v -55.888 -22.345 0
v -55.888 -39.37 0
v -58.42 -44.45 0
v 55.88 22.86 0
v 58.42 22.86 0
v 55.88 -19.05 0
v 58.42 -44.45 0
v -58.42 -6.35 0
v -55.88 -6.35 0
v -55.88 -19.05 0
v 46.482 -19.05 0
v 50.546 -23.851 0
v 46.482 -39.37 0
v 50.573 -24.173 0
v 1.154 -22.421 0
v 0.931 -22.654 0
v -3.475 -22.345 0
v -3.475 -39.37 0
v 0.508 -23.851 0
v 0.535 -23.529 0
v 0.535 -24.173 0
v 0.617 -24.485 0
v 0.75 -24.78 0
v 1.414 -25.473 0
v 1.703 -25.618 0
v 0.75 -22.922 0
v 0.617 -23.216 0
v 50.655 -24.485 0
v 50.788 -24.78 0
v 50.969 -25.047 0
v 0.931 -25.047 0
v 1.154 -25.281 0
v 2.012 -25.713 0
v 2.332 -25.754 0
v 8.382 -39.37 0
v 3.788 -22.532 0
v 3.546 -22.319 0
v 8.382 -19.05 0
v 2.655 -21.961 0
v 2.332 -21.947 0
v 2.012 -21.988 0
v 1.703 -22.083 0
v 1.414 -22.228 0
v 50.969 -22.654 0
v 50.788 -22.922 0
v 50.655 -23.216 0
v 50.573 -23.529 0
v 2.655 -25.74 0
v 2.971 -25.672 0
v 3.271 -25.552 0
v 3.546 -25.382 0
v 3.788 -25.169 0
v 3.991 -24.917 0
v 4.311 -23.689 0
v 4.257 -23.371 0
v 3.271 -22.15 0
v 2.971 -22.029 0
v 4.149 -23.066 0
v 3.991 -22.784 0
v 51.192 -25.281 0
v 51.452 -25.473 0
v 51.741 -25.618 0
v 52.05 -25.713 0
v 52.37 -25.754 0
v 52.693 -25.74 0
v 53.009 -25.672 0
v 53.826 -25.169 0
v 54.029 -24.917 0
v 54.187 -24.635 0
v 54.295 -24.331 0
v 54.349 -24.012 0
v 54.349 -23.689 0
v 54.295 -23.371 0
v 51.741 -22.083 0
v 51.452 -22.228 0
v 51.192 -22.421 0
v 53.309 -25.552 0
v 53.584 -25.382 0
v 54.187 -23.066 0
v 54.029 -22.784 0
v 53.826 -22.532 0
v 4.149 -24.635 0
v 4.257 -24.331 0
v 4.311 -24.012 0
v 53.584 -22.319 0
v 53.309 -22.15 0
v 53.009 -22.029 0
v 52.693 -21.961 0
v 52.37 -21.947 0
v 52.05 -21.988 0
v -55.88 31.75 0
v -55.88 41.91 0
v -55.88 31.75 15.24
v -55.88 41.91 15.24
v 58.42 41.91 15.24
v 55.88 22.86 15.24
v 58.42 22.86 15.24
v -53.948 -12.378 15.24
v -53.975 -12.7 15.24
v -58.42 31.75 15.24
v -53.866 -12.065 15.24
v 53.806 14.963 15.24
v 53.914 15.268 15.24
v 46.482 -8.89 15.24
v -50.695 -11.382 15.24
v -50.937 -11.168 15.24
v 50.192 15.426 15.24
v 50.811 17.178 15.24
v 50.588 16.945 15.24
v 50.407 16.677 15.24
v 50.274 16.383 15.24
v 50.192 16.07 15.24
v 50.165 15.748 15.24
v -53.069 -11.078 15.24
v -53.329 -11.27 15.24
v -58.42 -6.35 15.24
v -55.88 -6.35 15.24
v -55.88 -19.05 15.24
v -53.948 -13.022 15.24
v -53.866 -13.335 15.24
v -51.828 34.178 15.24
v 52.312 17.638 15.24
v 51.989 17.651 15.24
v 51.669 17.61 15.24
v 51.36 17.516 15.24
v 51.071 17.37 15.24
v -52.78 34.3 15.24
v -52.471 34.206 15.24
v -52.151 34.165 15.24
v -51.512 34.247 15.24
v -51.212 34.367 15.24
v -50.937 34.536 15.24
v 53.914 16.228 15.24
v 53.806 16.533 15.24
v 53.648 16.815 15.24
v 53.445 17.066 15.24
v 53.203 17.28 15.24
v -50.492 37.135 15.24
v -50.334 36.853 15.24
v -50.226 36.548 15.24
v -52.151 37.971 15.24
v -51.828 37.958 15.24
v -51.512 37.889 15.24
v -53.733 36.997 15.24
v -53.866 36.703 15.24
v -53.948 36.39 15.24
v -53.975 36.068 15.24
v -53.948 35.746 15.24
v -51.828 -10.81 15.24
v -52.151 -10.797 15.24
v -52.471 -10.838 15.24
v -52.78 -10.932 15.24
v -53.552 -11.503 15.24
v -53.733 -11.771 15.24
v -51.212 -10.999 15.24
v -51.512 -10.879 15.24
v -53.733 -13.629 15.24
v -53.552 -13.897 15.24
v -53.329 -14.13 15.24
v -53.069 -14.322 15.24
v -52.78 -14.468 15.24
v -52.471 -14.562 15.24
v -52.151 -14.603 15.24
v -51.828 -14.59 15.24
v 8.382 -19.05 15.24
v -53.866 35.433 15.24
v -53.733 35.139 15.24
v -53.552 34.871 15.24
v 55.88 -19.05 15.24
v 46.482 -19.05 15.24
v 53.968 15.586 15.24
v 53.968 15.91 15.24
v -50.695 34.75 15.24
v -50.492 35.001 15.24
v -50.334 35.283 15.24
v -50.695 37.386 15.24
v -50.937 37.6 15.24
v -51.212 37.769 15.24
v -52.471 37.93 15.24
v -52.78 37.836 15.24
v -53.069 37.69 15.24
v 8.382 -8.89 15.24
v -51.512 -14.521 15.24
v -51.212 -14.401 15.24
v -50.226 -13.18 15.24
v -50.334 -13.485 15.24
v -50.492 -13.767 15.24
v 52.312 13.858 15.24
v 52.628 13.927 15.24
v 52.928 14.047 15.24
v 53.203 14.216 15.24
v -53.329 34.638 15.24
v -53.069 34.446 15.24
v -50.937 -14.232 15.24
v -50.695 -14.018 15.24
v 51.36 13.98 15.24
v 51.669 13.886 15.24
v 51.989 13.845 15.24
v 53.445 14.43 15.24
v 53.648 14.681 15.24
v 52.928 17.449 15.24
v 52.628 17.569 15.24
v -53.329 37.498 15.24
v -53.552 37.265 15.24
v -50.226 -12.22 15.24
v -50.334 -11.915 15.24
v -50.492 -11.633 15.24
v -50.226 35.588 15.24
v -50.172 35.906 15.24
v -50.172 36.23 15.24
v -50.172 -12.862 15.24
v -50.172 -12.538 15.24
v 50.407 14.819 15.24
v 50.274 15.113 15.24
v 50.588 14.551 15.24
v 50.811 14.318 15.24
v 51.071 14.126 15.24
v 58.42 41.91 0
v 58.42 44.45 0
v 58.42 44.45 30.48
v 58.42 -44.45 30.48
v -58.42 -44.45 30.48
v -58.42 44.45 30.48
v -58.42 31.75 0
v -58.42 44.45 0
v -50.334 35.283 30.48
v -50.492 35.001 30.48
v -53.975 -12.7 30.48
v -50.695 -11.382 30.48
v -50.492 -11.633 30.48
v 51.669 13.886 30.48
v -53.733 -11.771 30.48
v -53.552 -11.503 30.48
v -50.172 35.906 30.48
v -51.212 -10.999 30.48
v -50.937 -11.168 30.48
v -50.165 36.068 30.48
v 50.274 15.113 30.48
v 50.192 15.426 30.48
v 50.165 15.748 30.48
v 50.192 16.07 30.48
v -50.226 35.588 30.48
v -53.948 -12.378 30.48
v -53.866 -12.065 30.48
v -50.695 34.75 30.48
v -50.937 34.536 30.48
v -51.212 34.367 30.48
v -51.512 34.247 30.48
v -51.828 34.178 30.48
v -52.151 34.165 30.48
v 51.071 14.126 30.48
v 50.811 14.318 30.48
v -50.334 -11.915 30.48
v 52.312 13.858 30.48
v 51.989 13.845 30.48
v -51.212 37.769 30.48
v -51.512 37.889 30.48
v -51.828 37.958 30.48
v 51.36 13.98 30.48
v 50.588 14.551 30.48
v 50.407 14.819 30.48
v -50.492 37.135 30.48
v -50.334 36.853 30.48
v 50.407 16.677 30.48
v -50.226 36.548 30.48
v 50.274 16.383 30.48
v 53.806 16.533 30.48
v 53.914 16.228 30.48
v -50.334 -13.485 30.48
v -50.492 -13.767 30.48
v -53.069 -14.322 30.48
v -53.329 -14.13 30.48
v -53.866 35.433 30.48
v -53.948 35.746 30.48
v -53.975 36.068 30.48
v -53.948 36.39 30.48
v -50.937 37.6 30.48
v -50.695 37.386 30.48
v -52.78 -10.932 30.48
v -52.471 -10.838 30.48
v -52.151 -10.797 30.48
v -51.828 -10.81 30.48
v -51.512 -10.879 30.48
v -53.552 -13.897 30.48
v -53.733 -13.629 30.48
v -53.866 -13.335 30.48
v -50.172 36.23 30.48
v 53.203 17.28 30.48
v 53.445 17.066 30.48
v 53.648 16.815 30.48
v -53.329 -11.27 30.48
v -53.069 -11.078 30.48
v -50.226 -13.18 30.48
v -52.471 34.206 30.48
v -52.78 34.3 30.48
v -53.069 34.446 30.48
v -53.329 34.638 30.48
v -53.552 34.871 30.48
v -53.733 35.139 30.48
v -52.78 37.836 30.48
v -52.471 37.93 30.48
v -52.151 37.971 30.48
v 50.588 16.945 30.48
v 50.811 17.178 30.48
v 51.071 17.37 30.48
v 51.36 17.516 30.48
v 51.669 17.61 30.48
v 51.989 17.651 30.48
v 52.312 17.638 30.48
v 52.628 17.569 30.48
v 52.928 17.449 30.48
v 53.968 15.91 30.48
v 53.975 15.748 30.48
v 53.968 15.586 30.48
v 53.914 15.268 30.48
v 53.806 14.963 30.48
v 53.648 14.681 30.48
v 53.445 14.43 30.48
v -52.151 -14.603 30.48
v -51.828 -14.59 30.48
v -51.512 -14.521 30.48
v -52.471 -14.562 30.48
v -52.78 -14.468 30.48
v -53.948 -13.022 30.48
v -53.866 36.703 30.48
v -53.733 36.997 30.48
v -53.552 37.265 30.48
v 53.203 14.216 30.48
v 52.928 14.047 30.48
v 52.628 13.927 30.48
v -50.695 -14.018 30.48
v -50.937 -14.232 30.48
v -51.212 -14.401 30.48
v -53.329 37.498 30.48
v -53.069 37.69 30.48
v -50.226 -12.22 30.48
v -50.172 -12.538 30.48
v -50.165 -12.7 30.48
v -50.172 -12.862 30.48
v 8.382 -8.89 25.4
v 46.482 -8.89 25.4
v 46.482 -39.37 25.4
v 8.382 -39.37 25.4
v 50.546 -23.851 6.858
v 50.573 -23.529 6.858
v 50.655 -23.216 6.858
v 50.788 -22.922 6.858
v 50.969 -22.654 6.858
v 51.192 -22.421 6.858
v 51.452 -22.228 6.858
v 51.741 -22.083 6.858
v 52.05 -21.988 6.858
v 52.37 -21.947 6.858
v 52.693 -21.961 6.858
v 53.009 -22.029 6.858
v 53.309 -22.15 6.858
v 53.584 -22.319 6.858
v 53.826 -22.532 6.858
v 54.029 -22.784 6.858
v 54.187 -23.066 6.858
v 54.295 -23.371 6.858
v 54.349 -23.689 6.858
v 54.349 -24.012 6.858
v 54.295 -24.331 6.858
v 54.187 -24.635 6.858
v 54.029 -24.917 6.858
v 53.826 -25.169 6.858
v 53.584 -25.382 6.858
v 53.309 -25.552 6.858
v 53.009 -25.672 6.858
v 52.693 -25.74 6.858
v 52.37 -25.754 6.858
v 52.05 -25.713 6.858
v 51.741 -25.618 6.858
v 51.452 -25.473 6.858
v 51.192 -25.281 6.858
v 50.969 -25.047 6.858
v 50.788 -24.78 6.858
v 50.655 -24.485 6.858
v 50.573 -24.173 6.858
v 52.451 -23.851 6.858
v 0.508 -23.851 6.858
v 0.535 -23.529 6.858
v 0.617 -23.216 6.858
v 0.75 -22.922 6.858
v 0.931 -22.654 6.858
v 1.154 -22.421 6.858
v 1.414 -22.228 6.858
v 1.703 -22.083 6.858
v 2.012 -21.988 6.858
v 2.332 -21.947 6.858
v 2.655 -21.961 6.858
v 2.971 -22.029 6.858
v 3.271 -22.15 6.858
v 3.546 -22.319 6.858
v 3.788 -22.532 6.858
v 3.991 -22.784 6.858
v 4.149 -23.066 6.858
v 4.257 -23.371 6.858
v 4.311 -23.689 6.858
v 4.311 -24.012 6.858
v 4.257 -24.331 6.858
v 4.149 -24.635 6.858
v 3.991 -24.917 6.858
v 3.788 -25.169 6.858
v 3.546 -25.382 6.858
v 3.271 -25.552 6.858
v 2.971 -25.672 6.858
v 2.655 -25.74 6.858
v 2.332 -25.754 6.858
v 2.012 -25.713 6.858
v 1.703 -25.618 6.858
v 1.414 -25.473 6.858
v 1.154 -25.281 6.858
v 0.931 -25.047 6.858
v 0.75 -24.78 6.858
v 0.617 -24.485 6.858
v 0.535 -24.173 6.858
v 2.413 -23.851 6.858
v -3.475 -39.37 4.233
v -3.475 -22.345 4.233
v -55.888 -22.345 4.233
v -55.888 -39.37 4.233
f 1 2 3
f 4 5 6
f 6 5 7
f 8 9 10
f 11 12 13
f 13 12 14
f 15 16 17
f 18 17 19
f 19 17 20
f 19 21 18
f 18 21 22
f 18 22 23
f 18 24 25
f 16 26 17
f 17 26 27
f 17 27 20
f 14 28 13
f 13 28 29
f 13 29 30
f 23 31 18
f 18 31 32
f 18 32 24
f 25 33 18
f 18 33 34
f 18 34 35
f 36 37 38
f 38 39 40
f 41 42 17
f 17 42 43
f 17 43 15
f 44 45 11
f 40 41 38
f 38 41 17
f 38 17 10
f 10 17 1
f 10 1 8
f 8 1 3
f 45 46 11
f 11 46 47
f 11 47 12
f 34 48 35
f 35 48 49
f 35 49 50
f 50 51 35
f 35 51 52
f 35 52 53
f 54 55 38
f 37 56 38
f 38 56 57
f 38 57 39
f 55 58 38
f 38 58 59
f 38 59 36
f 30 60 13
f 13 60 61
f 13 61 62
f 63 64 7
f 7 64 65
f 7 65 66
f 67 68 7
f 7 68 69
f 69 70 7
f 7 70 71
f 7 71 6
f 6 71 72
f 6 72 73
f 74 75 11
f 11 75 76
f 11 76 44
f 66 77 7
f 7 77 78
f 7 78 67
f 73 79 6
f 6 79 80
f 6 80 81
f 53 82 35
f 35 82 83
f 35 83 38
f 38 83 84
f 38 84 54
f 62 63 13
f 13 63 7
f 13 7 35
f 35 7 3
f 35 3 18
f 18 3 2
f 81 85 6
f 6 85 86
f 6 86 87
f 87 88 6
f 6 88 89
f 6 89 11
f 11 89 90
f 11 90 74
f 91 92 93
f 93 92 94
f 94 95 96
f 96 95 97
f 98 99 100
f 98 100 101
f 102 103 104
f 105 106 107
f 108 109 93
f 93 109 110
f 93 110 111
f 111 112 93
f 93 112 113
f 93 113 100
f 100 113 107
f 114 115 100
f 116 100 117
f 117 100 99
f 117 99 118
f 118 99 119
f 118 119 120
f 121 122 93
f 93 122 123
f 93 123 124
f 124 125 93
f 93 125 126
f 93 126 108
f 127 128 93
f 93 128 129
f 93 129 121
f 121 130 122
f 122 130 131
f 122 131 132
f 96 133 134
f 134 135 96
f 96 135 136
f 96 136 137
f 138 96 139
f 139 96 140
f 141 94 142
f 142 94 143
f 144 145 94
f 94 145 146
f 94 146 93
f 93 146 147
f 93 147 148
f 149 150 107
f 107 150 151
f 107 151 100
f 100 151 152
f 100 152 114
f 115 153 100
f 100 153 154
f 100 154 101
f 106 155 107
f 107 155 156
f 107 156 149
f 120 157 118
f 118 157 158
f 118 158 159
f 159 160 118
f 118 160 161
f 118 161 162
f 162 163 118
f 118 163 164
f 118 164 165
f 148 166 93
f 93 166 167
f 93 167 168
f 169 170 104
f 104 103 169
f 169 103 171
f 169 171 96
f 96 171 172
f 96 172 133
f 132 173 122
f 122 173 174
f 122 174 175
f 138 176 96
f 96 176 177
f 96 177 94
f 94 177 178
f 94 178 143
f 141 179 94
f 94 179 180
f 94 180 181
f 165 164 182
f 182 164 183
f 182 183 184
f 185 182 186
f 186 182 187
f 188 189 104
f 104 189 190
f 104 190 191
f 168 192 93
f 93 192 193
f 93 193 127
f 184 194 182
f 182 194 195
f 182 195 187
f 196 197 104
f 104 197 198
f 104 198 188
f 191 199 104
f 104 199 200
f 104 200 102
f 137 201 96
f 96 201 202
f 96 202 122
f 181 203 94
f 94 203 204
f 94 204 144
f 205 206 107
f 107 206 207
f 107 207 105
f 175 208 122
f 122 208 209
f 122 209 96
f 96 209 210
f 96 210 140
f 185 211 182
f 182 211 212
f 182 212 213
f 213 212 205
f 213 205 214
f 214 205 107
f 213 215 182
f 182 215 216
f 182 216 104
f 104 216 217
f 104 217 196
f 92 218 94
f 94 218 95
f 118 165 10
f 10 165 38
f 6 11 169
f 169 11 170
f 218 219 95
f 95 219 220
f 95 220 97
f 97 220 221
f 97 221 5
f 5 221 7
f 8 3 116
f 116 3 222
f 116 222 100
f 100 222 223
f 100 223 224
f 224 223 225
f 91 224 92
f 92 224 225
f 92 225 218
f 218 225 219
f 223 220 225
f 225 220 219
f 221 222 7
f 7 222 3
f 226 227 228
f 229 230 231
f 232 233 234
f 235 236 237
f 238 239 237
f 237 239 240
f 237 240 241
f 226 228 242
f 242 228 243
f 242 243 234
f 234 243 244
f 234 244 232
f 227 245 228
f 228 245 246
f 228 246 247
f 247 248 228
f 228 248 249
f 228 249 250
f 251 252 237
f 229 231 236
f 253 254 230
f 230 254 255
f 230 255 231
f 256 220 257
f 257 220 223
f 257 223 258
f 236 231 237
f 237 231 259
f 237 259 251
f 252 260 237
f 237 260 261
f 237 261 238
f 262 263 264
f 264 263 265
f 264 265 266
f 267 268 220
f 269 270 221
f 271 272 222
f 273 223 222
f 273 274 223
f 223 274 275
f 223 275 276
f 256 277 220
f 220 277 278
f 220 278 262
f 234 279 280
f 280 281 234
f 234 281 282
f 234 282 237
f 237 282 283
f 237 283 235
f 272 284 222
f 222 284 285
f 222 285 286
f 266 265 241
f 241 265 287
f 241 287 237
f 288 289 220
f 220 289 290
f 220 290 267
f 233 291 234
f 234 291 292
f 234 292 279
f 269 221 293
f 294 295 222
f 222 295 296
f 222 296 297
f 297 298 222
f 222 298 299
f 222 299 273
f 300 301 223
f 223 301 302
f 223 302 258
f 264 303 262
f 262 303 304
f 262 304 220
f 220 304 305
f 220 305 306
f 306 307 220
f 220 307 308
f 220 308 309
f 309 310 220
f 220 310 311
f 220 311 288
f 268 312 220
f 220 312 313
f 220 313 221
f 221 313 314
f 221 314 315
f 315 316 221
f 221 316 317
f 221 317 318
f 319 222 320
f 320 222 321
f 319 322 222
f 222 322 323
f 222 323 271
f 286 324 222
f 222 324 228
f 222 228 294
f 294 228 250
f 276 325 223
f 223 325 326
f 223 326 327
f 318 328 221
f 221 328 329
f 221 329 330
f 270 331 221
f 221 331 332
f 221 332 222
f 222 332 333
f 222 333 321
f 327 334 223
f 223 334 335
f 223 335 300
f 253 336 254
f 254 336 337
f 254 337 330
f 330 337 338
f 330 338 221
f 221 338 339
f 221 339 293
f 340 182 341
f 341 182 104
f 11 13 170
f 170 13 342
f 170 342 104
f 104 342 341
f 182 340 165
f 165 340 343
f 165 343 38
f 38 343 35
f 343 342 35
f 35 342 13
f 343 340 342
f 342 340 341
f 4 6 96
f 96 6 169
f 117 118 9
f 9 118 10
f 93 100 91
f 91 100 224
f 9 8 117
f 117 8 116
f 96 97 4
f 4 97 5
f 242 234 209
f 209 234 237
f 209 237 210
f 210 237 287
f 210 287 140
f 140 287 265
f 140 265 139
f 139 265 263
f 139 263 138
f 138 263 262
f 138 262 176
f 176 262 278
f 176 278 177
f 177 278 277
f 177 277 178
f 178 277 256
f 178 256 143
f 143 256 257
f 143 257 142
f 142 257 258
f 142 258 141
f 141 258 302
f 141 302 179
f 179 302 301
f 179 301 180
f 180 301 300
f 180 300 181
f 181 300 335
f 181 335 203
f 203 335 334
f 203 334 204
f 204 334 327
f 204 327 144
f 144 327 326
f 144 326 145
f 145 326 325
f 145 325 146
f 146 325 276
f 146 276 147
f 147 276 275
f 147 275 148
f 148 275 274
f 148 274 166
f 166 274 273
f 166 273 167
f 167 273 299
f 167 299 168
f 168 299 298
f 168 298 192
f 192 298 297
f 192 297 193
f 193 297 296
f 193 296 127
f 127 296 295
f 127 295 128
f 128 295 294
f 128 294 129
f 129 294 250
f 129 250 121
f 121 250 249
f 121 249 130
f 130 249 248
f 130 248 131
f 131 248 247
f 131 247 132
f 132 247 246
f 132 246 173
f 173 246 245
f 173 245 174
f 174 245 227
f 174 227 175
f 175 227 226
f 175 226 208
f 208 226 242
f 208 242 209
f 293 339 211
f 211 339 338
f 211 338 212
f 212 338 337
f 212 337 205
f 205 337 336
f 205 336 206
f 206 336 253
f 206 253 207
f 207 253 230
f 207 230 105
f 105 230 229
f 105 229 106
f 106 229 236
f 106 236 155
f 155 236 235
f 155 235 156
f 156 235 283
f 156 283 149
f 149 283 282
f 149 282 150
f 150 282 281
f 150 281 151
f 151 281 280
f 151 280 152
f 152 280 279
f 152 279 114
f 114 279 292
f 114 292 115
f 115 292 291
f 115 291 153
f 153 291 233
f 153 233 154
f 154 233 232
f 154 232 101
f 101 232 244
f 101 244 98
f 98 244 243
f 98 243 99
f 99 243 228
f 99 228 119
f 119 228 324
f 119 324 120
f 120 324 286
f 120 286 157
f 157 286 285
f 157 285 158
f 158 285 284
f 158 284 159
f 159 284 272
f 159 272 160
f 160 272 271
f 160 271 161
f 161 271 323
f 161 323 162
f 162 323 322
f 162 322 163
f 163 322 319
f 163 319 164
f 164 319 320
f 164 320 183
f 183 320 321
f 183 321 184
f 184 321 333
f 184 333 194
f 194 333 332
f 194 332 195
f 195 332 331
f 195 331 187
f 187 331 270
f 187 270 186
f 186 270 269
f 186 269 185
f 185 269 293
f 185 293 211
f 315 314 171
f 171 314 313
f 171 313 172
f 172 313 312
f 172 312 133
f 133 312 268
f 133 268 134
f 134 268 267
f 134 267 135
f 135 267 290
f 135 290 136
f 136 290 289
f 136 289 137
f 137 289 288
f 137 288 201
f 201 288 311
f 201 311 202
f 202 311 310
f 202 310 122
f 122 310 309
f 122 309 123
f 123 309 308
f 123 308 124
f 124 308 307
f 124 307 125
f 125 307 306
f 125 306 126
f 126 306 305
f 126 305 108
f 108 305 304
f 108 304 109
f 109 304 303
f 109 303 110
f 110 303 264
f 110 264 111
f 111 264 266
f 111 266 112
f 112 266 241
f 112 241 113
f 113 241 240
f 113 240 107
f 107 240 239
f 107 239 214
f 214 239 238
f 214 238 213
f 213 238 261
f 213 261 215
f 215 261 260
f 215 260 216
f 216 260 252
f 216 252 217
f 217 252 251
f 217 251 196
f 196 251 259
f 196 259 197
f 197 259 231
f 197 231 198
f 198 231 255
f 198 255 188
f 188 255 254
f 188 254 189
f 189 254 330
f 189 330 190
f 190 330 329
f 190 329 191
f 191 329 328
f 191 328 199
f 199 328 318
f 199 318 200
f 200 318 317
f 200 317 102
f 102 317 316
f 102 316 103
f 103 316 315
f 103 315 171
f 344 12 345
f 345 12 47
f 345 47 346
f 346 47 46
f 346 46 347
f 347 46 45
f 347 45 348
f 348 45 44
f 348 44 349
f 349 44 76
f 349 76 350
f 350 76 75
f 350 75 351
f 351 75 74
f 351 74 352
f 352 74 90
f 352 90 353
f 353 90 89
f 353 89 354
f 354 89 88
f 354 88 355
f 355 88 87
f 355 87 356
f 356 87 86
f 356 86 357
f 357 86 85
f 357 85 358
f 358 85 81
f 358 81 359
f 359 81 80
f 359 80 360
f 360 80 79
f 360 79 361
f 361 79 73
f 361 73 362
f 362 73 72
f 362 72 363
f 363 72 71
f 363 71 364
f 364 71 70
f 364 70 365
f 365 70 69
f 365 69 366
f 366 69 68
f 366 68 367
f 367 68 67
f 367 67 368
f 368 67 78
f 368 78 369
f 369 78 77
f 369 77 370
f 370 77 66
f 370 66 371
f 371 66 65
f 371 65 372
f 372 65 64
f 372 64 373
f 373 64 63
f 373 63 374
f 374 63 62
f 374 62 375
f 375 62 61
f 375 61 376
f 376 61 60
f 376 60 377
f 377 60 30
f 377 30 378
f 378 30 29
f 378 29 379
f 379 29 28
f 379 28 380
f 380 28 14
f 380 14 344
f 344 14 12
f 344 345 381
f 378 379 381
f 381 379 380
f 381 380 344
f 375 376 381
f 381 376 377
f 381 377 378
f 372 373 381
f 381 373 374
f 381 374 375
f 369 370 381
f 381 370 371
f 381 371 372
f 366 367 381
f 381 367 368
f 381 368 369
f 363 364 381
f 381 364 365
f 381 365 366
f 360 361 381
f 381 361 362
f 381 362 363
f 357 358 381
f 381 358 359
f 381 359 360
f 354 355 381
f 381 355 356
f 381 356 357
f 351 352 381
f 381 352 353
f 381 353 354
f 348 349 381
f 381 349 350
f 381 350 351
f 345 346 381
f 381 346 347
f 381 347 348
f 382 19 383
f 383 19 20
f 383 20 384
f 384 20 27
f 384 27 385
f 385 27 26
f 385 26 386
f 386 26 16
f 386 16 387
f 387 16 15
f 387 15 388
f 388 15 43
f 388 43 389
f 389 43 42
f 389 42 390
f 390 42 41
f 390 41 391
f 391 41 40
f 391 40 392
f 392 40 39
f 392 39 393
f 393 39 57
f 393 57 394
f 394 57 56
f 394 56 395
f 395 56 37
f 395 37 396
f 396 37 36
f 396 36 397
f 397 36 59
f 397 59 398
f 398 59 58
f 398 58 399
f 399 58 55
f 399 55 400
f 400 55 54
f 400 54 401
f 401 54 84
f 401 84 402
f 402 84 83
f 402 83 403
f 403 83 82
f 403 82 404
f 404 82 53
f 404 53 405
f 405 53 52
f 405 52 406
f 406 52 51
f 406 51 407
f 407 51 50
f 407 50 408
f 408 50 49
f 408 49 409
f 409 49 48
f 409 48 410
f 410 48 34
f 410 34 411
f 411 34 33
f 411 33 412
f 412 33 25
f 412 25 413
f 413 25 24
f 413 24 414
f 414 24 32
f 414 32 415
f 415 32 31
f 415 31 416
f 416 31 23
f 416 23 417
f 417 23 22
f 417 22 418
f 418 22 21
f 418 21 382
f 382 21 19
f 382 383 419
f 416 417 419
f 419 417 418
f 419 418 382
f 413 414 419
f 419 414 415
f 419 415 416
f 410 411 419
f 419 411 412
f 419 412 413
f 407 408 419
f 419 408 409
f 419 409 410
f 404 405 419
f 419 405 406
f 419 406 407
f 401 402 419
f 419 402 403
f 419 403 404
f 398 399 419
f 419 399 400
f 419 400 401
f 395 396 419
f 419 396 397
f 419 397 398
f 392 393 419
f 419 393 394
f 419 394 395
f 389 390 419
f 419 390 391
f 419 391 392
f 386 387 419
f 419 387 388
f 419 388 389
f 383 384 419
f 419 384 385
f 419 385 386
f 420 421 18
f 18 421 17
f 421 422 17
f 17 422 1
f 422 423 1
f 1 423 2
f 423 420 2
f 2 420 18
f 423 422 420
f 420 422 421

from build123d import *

# Parameters (mm, degrees)
SKETCH1_W           = 116.84
SKETCH1_H           = 88.9
BOSS_EXTRUDE1_DEPTH = 30.48
SKETCH2_W           = 121.92
SKETCH2_H           = 60.96
CUT_EXTRUDE1_DEPTH  = 15.24
SKETCH4_W           = 38.1
SKETCH4_H           = 30.48
CUT_EXTRUDE2_DEPTH  = 25.4
SKETCH9_W           = 2.54
SKETCH9_H           = 60.96
BOSS_EXTRUDE2_DEPTH = 15.24
SKETCH11_W          = 2.54
SKETCH11_H          = 60.96
BOSS_EXTRUDE3_DEPTH = 15.24
SKETCH13_W          = 6.933470389
SKETCH13_H          = 38.1
CUT_EXTRUDE6_DEPTH  = 15.24
SKETCH14_W          = 5.795170267
SKETCH14_H          = 19.05
CUT_EXTRUDE7_DEPTH  = 15.24
SKETCH15_R          = 1.905
CUT_EXTRUDE8_DEPTH  = 48.26
SKETCH16_R          = 1.905
CUT_EXTRUDE9_DEPTH  = 6.858
SKETCH19_W          = 52.412757742
SKETCH19_H          = 17.024597759
CUT_EXTRUDE10_DEPTH = 4.233333333
SKETCH5_W           = 10.150117587
SKETCH5_H           = 22.048837971
CUT_EXTRUDE3_DEPTH  = 15.24
SKETCH6_W           = 9.22767553
SKETCH6_H           = 28.682463558
CUT_EXTRUDE4_DEPTH  = 15.24
SKETCH7_W           = 7.203031043
SKETCH7_H           = 12.7
CUT_EXTRUDE5_DEPTH  = 15.24


with BuildPart() as part:
    # Sketch1 → Boss-Extrude1 (new body)
    with BuildSketch(Plane.XY):
        Rectangle(SKETCH1_W, SKETCH1_H)
    extrude(amount=BOSS_EXTRUDE1_DEPTH)

    # Sketch2 → Cut-Extrude1 (cut)
    with BuildSketch(Plane.XY):
        with Locations((0, 11.43)):
            Rectangle(SKETCH2_W, SKETCH2_H)
    extrude(amount=CUT_EXTRUDE1_DEPTH, mode=Mode.SUBTRACT)

    # Sketch4 → Cut-Extrude2 (cut)
    with BuildSketch(Plane(origin=(0, 0, 0), x_dir=(-1, 0, 0), z_dir=(0, 0, -1))):
        with Locations((-27.432, -24.13)):
            Rectangle(SKETCH4_W, SKETCH4_H)
    extrude(amount=-CUT_EXTRUDE2_DEPTH, mode=Mode.SUBTRACT)

    # Sketch9 → Boss-Extrude2 (add)
    with BuildSketch(Plane(origin=(0, 0, 15.24), x_dir=(-1, 0, 0), z_dir=(0, 0, -1))):
        with Locations((-57.15, 11.43)):
            Rectangle(SKETCH9_W, SKETCH9_H)
    extrude(amount=BOSS_EXTRUDE2_DEPTH)

    # Sketch11 → Boss-Extrude3 (add)
    with BuildSketch(Plane(origin=(0, 0, 15.24), x_dir=(-1, 0, 0), z_dir=(0, 0, -1))):
        with Locations((57.15, 11.43)):
            Rectangle(SKETCH11_W, SKETCH11_H)
    extrude(amount=BOSS_EXTRUDE3_DEPTH)

    # Sketch13 → Cut-Extrude6 (cut)
    with BuildSketch(Plane(origin=(0, 0, 0), x_dir=(-1, 0, 0), z_dir=(0, 0, -1))):
        with Locations((59.346735194, 12.7)):
            Rectangle(SKETCH13_W, SKETCH13_H)
    extrude(amount=-CUT_EXTRUDE6_DEPTH, mode=Mode.SUBTRACT)

    # Sketch14 → Cut-Extrude7 (cut)
    with BuildSketch(Plane(origin=(0, 0, 0), x_dir=(-1, 0, 0), z_dir=(0, 0, -1))):
        with Locations((-58.777585134, 32.385)):
            Rectangle(SKETCH14_W, SKETCH14_H)
    extrude(amount=-CUT_EXTRUDE7_DEPTH, mode=Mode.SUBTRACT)

    # Sketch15 → Cut-Extrude8 (cut)
    with BuildSketch(Plane(origin=(0, 0, 15.24), x_dir=(-1, 0, 0), z_dir=(0, 0, -1))):
        with Locations((52.07, 36.068)):
            Circle(SKETCH15_R)
        with Locations((52.07, -12.7)):
            Circle(SKETCH15_R)
        with Locations((-52.07, 15.748)):
            Circle(SKETCH15_R)
    extrude(amount=-CUT_EXTRUDE8_DEPTH, mode=Mode.SUBTRACT)

    # Sketch16 → Cut-Extrude9 (cut)
    with BuildSketch(Plane(origin=(0, 0, 0), x_dir=(-1, 0, 0), z_dir=(0, 0, -1))):
        with Locations((-52.451, -23.8506)):
            Circle(SKETCH16_R)
        with Locations((-2.413, -23.8506)):
            Circle(SKETCH16_R)
    extrude(amount=-CUT_EXTRUDE9_DEPTH, mode=Mode.SUBTRACT)

    # Sketch19 → Cut-Extrude10 (cut)
    with BuildSketch(Plane(origin=(0, 0, 0), x_dir=(-1, 0, 0), z_dir=(0, 0, -1))):
        with Locations((29.681257837, -30.857701121)):
            Rectangle(SKETCH19_W, SKETCH19_H)
    extrude(amount=-CUT_EXTRUDE10_DEPTH, mode=Mode.SUBTRACT)

    # Sketch5 → Cut-Extrude3 (cut)
    with BuildSketch(Plane(origin=(0, 0, 0), x_dir=(-1, 0, 0), z_dir=(0, 0, -1))):
        with Locations((66.035058793, 15.645581015)):
            Rectangle(SKETCH5_W, SKETCH5_H)
    extrude(amount=-CUT_EXTRUDE3_DEPTH, mode=Mode.SUBTRACT)

    # Sketch6 → Cut-Extrude4 (cut)
    with BuildSketch(Plane(origin=(0, 0, 0), x_dir=(-1, 0, 0), z_dir=(0, 0, -1))):
        with Locations((65.573837765, 15.522274396)):
            Rectangle(SKETCH6_W, SKETCH6_H)
    extrude(amount=-CUT_EXTRUDE4_DEPTH, mode=Mode.SUBTRACT)

    # Sketch7 → Cut-Extrude5 (cut)
    with BuildSketch(Plane(origin=(0, 0, 0), x_dir=(-1, 0, 0), z_dir=(0, 0, -1))):
        with Locations((-64.561515521, 35.56)):
            Rectangle(SKETCH7_W, SKETCH7_H)
    extrude(amount=-CUT_EXTRUDE5_DEPTH, mode=Mode.SUBTRACT)


solid = part.part
